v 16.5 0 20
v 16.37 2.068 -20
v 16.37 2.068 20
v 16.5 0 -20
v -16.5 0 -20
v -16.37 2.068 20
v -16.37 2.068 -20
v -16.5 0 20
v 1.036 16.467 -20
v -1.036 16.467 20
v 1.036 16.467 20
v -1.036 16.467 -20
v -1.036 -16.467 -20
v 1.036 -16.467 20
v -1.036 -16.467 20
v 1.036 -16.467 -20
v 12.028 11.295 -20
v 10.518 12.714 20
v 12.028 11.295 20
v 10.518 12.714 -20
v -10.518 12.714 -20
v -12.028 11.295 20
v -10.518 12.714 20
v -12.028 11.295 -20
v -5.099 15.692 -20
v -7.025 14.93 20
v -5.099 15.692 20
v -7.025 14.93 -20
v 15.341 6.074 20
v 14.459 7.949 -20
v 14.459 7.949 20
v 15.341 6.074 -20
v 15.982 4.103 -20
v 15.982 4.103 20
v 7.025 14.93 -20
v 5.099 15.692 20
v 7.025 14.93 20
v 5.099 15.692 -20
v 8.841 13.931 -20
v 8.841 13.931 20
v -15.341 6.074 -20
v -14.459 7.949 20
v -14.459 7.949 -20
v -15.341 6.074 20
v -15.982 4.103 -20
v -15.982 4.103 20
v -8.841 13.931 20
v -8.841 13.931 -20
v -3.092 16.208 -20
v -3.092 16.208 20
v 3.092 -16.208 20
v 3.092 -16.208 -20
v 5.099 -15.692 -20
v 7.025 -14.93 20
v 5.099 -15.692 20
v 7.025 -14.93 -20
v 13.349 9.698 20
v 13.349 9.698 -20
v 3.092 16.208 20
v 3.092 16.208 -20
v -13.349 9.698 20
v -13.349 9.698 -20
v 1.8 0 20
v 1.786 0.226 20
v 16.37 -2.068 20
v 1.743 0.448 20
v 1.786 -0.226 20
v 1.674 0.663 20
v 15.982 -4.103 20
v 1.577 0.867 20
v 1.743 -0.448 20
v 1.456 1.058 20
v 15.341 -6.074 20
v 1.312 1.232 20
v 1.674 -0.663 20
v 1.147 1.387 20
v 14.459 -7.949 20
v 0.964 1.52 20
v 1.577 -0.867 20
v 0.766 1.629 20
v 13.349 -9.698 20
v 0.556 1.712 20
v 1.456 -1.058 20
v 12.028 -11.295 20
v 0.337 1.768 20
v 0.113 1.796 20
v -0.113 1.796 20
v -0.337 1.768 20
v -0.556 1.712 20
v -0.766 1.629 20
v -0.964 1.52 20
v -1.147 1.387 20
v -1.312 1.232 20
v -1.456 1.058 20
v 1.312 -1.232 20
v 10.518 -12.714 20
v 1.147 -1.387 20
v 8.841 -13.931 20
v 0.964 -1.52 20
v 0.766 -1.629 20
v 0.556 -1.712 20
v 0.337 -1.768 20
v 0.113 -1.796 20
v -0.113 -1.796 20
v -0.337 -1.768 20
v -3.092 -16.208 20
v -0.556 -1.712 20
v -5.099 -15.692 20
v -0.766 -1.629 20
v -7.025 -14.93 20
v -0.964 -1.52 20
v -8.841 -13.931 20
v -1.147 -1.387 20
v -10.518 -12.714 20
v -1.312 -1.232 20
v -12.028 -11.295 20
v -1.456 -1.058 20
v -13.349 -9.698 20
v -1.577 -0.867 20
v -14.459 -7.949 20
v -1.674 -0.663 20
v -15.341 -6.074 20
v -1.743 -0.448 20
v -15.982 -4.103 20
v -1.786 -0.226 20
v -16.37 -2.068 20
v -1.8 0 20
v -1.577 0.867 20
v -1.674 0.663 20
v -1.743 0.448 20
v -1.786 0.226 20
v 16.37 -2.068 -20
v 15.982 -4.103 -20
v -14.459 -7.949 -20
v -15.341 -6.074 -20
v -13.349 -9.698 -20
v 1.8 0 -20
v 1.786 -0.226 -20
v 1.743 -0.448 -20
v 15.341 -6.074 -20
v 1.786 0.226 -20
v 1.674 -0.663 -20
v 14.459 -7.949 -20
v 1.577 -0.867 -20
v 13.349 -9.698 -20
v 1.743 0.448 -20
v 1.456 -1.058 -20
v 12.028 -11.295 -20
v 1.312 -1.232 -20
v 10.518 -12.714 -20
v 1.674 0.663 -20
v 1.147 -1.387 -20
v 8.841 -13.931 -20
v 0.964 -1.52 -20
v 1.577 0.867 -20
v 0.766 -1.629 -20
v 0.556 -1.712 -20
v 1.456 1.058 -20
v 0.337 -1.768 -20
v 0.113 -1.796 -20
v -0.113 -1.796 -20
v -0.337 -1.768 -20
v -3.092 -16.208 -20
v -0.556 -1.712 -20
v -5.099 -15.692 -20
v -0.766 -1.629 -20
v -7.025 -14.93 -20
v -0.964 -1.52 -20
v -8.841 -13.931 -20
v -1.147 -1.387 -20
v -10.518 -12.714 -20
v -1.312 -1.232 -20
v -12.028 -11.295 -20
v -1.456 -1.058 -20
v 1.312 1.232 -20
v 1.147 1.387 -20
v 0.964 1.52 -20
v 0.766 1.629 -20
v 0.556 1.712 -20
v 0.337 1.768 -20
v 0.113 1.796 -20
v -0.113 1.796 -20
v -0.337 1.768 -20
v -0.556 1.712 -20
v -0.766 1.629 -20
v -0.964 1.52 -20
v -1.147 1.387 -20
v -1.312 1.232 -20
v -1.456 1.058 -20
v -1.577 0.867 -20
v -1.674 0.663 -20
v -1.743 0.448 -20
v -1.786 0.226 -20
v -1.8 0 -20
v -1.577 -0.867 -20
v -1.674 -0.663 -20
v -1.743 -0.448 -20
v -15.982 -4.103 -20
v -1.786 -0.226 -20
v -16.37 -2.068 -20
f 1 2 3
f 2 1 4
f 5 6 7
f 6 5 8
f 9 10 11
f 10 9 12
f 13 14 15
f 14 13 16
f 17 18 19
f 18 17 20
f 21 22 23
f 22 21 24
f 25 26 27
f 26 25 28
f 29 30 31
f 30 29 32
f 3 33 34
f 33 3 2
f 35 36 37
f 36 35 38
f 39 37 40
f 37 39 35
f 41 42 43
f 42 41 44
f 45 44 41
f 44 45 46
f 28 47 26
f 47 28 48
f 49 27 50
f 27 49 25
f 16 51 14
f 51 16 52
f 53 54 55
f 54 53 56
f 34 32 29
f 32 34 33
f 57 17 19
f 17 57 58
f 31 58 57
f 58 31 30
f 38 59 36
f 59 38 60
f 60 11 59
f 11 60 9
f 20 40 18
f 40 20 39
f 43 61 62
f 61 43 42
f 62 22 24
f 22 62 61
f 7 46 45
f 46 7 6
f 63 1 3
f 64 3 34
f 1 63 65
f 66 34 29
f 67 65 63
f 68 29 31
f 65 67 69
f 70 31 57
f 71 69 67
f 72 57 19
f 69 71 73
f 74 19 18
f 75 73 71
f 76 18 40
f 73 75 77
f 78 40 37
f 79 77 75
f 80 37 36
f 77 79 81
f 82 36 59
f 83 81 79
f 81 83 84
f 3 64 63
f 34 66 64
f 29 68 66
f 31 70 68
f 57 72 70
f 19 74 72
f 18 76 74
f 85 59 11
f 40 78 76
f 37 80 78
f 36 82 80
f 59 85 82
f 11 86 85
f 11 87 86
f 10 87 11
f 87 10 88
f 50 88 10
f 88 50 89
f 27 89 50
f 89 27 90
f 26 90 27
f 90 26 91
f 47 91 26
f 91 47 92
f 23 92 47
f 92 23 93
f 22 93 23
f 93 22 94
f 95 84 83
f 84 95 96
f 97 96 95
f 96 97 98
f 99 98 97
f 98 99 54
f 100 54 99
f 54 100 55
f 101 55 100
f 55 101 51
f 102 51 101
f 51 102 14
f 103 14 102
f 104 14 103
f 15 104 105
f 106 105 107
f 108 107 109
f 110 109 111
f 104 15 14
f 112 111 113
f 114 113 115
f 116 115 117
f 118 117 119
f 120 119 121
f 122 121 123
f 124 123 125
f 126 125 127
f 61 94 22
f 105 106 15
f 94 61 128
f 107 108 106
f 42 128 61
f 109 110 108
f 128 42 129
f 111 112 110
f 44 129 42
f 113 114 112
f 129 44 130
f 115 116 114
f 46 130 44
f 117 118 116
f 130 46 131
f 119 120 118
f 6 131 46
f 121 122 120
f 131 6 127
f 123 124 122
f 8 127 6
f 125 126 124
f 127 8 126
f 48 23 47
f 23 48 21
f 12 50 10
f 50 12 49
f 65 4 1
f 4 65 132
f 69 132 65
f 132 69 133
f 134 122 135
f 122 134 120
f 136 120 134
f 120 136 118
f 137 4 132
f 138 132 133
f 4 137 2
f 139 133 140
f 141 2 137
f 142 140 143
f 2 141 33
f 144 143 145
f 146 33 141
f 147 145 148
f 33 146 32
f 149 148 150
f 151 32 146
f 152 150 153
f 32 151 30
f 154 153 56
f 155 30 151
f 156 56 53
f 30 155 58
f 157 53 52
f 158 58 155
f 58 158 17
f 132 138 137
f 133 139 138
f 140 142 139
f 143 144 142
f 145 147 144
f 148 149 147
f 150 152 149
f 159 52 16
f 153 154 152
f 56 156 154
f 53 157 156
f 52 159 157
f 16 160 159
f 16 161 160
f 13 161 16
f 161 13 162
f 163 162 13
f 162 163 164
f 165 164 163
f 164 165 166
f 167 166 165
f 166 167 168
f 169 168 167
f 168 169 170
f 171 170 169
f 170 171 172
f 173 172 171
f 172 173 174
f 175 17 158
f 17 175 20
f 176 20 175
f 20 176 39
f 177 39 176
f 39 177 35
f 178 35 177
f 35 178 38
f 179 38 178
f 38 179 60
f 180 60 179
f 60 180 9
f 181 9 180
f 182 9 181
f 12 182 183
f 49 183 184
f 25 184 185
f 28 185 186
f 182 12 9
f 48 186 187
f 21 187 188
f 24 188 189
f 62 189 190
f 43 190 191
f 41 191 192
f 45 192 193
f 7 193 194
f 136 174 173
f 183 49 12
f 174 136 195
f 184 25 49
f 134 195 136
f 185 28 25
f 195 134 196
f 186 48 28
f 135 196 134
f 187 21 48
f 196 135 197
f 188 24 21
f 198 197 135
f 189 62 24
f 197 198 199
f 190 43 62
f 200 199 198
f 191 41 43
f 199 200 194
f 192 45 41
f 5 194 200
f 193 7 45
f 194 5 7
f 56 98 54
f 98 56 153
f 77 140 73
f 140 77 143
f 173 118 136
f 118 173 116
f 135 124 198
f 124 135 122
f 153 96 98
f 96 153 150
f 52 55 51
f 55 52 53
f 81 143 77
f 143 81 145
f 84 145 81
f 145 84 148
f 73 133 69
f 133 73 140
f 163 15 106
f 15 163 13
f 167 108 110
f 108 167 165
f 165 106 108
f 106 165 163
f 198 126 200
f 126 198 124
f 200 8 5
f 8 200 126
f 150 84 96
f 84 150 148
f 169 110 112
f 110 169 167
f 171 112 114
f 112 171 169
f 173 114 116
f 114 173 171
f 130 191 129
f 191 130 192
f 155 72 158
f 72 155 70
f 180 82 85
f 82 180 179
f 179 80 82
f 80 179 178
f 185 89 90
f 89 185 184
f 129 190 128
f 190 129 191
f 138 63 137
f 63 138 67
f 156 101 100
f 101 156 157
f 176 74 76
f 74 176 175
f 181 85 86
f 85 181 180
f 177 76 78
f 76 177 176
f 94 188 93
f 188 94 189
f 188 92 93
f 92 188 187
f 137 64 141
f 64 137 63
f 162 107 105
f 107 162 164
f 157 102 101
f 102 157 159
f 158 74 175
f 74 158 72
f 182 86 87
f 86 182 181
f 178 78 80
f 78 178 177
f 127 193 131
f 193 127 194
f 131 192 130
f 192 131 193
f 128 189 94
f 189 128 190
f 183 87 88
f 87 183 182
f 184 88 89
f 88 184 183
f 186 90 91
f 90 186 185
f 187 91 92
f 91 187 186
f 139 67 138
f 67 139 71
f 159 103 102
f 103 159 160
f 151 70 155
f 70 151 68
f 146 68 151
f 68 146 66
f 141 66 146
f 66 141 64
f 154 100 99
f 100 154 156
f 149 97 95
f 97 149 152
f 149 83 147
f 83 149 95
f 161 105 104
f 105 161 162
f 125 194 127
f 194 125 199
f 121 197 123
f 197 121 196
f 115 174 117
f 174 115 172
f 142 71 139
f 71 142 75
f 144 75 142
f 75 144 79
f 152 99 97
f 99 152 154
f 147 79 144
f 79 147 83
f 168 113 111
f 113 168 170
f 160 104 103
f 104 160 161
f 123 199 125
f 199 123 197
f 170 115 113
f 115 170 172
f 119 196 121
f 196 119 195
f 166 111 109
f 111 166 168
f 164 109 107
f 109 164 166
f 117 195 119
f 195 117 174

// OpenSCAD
$fn = 50;


difference() {
	union() {
		translate(v = [0, 0, -20.0000000000]) {
			cylinder(h = 40, r = 16.5000000000);
		}
	}
	union() {
		translate(v = [0, 0, -100.0000000000]) {
			cylinder(h = 200, r = 1.8000000000);
		}
	}
}
